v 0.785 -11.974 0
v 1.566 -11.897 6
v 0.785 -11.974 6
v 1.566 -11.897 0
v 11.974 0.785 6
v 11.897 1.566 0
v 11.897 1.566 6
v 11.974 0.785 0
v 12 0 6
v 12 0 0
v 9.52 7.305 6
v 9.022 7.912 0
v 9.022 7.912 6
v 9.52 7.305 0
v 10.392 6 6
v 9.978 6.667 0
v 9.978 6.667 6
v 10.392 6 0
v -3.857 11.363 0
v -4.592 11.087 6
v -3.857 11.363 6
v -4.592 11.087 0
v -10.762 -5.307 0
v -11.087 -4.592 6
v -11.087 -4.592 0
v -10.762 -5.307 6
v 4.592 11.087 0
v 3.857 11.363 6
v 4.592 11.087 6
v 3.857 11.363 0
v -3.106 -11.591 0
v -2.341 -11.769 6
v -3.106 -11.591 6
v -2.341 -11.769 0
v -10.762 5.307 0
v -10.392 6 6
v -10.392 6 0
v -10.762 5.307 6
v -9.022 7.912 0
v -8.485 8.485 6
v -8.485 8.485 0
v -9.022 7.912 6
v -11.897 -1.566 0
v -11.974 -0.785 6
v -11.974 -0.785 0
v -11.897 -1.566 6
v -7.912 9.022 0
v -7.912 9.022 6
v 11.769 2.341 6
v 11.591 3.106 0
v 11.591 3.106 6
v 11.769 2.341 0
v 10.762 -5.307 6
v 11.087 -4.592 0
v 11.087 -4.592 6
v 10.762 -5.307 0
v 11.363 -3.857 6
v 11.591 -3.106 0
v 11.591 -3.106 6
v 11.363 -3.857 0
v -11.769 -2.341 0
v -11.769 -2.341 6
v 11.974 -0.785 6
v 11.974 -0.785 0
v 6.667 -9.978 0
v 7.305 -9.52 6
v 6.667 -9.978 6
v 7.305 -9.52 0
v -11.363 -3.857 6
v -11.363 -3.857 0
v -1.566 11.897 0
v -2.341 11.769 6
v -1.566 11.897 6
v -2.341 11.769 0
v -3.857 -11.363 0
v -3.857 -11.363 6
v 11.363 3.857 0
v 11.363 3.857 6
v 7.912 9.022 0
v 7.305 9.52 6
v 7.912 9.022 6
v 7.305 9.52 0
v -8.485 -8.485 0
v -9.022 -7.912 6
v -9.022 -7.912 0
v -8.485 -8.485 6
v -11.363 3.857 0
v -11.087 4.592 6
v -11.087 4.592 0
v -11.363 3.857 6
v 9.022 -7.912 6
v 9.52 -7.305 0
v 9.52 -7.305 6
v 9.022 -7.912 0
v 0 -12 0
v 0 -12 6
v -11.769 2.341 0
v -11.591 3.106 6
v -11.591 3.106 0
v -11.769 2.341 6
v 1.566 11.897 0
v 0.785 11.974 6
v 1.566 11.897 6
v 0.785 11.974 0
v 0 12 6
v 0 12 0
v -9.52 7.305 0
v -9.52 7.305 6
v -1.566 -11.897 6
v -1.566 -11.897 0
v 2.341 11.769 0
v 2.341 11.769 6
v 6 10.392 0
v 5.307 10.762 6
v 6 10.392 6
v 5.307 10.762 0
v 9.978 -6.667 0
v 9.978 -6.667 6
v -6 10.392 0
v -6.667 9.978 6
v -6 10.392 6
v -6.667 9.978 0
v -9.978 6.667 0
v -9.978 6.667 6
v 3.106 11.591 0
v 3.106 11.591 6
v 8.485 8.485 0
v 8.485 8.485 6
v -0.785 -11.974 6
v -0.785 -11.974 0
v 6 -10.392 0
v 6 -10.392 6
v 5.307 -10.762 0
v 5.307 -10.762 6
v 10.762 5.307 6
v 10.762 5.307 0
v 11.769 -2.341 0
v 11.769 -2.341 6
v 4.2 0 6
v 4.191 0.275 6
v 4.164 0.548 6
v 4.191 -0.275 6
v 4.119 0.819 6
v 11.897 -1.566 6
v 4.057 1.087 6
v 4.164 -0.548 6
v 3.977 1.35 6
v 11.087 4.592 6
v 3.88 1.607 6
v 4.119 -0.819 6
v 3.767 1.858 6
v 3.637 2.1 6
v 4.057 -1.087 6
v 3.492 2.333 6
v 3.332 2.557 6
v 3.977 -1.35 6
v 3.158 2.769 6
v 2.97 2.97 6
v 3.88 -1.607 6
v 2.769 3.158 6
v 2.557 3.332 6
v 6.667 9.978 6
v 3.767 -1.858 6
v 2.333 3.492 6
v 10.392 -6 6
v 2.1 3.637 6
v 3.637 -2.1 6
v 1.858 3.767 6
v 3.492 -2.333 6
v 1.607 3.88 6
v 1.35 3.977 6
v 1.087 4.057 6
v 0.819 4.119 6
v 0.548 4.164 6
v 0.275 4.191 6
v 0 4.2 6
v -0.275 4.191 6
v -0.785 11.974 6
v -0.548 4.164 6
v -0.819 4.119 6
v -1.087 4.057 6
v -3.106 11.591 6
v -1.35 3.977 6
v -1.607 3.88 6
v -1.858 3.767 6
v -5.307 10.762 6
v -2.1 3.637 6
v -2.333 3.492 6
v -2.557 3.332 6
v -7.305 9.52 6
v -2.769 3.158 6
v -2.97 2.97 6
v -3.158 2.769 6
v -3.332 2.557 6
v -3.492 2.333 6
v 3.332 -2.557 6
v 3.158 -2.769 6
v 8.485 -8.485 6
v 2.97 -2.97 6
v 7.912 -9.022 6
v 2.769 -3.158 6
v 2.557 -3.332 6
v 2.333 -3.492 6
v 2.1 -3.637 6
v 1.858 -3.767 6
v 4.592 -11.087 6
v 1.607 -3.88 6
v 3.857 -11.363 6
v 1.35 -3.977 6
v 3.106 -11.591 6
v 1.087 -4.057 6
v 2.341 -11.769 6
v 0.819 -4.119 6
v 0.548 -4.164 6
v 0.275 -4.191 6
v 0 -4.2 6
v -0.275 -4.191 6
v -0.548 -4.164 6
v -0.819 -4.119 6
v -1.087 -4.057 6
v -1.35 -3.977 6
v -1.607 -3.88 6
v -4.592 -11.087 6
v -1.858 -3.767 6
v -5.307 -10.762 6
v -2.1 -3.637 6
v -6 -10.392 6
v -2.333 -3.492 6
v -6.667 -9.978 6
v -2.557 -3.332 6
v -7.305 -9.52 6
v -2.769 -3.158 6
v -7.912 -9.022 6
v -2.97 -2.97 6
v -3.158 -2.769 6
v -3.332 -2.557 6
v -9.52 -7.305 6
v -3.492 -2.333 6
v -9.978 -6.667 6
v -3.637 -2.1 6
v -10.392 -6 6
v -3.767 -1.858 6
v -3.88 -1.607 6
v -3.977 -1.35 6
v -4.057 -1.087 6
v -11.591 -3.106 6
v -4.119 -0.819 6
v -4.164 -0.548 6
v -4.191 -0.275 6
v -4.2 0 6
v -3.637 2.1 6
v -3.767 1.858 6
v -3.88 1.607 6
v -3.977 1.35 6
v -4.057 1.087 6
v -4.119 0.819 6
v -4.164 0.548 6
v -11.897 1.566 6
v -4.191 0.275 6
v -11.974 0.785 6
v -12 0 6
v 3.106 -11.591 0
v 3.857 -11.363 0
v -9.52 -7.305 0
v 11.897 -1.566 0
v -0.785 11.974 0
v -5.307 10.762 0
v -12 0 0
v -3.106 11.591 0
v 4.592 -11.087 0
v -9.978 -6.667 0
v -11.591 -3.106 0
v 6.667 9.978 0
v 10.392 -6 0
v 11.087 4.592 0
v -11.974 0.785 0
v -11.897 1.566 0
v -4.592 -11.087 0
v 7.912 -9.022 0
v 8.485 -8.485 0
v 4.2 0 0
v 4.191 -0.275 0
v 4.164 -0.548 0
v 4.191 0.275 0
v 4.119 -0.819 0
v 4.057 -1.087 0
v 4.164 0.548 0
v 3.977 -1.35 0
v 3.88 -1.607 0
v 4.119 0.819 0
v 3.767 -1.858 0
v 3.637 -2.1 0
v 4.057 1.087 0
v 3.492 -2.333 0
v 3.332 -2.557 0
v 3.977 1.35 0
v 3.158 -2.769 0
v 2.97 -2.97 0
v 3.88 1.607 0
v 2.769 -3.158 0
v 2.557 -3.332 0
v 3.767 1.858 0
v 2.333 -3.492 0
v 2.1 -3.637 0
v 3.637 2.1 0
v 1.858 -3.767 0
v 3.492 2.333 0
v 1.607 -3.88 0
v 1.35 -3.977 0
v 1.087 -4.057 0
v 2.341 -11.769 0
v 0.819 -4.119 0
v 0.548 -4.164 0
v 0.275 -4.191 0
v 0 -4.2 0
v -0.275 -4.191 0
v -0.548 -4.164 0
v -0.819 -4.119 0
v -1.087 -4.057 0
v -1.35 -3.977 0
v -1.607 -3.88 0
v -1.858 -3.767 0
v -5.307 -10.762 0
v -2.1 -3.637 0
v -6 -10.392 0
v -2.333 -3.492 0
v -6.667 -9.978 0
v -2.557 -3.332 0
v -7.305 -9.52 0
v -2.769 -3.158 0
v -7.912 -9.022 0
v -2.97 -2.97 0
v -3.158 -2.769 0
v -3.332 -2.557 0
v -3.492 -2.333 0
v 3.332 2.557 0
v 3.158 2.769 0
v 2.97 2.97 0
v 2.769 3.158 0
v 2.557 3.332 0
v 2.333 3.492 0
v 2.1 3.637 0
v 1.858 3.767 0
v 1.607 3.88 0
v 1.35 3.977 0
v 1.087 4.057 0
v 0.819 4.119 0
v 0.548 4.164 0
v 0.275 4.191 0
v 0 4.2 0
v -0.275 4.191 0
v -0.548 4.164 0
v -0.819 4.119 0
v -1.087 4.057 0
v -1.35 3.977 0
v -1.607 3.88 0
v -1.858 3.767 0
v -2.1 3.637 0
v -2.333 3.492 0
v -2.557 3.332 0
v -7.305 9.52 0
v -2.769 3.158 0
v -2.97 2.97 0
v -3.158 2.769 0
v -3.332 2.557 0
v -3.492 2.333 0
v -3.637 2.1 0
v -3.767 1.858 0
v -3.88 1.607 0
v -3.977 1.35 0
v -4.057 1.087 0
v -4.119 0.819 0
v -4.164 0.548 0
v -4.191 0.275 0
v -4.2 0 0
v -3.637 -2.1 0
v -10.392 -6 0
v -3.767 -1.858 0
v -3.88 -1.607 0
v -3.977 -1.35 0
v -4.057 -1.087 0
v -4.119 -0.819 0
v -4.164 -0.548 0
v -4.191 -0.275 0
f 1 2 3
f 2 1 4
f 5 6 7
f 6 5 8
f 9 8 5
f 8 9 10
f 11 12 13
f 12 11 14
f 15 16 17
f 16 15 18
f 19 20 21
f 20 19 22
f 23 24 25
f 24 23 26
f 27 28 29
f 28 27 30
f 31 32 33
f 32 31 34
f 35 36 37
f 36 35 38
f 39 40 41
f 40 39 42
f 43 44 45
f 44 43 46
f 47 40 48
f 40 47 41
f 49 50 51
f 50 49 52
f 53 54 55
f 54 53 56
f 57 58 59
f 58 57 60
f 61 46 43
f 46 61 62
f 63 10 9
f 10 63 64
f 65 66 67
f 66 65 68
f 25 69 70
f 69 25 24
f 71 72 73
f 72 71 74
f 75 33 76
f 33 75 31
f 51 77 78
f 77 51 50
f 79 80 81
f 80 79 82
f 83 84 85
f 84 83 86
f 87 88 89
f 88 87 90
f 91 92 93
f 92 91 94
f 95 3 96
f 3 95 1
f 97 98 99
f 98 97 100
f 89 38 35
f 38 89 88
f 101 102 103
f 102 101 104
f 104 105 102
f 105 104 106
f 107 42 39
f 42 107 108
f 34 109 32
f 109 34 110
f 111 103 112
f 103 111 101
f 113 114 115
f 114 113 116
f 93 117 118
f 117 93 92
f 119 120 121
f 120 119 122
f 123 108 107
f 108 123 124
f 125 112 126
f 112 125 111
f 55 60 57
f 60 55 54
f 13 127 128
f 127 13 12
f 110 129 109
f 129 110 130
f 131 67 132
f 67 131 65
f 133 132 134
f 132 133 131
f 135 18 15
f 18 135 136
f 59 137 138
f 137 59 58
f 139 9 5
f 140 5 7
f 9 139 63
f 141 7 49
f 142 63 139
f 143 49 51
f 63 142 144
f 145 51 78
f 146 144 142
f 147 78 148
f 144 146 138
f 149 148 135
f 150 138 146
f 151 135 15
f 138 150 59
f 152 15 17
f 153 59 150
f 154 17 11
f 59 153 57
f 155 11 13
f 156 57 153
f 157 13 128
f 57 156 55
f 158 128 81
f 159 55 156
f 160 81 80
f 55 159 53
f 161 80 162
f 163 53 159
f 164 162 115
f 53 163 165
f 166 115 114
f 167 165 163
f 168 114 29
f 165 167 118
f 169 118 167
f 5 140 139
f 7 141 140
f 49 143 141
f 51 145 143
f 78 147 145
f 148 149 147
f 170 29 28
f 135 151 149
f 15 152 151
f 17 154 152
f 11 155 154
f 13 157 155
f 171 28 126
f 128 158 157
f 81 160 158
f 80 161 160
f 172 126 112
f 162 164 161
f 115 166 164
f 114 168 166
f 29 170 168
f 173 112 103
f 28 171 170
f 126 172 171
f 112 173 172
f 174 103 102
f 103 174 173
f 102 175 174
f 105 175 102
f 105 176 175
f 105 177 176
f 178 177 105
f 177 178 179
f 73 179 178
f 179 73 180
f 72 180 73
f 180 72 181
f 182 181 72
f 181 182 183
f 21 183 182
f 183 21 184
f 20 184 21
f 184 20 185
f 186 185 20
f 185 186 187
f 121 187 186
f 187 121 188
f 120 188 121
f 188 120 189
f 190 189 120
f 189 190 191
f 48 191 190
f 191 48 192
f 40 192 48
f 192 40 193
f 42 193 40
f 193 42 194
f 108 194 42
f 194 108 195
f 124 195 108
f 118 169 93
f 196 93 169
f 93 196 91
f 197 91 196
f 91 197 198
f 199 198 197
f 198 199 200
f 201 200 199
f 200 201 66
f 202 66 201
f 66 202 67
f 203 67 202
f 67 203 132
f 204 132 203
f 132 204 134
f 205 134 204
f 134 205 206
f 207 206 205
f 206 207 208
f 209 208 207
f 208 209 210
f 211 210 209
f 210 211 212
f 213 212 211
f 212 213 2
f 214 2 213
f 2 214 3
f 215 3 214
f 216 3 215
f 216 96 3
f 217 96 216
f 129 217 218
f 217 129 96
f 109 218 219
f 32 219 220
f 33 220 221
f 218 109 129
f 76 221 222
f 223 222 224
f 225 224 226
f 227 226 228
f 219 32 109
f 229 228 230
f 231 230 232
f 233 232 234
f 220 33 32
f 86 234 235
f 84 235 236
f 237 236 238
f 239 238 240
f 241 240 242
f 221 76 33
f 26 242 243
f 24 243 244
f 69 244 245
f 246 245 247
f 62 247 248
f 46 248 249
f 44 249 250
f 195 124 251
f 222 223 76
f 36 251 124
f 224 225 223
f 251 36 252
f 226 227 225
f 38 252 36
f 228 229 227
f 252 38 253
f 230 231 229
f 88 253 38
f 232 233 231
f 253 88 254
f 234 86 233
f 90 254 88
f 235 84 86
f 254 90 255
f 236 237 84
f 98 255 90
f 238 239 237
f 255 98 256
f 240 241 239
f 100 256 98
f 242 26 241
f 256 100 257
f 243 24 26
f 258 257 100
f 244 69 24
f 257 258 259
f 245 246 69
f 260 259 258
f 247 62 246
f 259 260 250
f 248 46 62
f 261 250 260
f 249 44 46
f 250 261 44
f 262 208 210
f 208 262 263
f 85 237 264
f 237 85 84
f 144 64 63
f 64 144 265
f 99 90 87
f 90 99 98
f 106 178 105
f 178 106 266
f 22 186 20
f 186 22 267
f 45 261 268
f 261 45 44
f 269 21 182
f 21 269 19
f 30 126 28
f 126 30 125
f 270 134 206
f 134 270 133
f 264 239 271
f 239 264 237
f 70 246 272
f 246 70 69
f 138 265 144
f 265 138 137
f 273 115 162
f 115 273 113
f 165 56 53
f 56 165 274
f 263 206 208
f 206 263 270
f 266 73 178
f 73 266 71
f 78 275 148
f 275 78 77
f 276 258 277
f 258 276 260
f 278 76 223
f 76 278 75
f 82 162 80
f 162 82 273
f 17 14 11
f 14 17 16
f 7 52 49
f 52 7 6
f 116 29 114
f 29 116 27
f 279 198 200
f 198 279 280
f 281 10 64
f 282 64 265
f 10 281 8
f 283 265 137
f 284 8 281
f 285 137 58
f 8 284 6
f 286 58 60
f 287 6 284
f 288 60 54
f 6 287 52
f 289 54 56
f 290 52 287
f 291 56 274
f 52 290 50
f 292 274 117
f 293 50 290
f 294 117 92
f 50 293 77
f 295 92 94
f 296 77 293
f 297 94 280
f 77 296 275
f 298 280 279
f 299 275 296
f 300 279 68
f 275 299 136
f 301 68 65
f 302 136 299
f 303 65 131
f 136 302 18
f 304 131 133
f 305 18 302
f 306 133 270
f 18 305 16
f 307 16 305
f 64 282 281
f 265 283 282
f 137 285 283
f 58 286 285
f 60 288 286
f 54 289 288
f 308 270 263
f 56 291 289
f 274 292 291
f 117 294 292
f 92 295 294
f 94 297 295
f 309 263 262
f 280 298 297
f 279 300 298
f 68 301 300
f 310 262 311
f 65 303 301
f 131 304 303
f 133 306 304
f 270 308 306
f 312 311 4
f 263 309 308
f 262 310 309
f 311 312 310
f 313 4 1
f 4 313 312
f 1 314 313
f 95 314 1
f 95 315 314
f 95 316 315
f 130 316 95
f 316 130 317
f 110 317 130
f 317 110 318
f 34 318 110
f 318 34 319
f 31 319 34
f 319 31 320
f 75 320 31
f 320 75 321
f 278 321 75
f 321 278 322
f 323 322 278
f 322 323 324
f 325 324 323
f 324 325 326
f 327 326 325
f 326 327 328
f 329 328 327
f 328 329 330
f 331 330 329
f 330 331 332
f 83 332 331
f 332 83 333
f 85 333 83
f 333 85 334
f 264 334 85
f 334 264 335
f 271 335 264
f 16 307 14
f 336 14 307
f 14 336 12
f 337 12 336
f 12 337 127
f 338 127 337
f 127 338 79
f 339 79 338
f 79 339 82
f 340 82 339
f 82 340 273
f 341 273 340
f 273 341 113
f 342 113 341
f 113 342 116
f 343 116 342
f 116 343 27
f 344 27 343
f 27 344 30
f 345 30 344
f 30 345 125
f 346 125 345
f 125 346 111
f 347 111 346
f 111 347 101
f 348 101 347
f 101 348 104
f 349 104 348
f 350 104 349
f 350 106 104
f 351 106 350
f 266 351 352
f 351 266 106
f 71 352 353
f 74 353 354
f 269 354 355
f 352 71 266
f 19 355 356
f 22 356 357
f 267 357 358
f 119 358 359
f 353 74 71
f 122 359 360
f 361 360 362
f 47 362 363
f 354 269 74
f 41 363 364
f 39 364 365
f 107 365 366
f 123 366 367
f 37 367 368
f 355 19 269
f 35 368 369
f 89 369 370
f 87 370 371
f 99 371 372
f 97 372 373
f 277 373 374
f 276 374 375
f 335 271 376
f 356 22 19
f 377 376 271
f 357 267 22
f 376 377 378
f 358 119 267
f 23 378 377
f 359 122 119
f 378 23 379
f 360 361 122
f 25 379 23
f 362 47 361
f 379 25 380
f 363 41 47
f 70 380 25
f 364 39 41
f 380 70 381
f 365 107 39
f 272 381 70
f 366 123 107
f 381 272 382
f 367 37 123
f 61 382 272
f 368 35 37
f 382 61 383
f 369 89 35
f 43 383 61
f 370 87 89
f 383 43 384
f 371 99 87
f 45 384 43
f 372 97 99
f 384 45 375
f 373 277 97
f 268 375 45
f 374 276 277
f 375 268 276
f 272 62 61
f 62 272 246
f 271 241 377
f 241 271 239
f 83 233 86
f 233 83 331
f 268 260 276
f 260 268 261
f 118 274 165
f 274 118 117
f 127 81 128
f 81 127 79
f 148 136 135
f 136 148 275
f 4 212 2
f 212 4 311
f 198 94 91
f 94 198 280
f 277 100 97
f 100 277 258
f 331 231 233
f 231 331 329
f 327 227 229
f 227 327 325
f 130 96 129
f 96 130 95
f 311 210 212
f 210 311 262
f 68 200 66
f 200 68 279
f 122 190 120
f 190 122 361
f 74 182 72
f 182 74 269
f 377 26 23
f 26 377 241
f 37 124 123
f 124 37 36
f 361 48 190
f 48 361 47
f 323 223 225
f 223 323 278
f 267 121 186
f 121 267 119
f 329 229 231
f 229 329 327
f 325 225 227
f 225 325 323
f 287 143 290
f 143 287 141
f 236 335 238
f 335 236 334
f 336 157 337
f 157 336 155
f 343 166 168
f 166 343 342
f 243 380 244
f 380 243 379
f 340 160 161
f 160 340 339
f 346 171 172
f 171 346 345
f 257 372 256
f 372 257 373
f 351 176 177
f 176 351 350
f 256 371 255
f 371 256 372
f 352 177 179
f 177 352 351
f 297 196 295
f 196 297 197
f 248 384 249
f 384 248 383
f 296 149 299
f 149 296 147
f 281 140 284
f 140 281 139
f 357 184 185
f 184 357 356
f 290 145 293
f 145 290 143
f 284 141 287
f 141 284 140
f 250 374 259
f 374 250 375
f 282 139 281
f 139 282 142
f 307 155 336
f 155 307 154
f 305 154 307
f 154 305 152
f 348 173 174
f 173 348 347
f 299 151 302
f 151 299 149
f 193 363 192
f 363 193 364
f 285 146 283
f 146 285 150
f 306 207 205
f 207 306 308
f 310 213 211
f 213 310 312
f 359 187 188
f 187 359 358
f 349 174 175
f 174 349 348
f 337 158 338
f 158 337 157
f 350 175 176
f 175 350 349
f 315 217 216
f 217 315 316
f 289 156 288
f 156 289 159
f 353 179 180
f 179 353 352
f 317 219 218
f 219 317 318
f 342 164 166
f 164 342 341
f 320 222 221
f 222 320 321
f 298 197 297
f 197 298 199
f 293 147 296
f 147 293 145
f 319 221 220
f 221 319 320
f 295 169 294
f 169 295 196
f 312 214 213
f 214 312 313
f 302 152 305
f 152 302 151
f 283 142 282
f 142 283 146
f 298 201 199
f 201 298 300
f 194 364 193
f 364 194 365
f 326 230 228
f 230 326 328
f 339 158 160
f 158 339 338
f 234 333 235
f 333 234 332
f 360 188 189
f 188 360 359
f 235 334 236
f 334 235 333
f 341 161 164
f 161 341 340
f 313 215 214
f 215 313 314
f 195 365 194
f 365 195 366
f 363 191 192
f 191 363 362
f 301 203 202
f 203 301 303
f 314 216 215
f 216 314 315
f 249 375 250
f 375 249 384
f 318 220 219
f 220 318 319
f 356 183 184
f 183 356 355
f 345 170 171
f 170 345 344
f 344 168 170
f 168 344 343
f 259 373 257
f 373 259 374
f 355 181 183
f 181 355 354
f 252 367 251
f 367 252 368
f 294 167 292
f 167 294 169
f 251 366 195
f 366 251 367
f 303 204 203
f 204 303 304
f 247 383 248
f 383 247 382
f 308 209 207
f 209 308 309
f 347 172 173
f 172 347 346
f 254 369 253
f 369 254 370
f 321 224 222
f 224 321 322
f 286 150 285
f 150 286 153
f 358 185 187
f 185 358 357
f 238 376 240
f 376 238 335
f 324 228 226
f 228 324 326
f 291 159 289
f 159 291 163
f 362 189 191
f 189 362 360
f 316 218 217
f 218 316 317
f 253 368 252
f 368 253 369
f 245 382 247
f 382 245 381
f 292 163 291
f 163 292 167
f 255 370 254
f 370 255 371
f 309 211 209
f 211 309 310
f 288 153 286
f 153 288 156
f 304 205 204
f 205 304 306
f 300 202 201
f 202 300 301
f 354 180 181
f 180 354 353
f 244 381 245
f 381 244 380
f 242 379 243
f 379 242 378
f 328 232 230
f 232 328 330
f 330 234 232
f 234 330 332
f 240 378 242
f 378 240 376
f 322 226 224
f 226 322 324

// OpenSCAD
// Original dimensional trial for a 24 mm OD, 8.4 mm bore, 6 mm spacer.
// No load rating, material or physical fit claim. Millimetres.
$fn=96;
difference() {
    cylinder(d=24,h=6);
    translate([0,0,-0.1]) cylinder(d=8.4,h=6.2);
}
